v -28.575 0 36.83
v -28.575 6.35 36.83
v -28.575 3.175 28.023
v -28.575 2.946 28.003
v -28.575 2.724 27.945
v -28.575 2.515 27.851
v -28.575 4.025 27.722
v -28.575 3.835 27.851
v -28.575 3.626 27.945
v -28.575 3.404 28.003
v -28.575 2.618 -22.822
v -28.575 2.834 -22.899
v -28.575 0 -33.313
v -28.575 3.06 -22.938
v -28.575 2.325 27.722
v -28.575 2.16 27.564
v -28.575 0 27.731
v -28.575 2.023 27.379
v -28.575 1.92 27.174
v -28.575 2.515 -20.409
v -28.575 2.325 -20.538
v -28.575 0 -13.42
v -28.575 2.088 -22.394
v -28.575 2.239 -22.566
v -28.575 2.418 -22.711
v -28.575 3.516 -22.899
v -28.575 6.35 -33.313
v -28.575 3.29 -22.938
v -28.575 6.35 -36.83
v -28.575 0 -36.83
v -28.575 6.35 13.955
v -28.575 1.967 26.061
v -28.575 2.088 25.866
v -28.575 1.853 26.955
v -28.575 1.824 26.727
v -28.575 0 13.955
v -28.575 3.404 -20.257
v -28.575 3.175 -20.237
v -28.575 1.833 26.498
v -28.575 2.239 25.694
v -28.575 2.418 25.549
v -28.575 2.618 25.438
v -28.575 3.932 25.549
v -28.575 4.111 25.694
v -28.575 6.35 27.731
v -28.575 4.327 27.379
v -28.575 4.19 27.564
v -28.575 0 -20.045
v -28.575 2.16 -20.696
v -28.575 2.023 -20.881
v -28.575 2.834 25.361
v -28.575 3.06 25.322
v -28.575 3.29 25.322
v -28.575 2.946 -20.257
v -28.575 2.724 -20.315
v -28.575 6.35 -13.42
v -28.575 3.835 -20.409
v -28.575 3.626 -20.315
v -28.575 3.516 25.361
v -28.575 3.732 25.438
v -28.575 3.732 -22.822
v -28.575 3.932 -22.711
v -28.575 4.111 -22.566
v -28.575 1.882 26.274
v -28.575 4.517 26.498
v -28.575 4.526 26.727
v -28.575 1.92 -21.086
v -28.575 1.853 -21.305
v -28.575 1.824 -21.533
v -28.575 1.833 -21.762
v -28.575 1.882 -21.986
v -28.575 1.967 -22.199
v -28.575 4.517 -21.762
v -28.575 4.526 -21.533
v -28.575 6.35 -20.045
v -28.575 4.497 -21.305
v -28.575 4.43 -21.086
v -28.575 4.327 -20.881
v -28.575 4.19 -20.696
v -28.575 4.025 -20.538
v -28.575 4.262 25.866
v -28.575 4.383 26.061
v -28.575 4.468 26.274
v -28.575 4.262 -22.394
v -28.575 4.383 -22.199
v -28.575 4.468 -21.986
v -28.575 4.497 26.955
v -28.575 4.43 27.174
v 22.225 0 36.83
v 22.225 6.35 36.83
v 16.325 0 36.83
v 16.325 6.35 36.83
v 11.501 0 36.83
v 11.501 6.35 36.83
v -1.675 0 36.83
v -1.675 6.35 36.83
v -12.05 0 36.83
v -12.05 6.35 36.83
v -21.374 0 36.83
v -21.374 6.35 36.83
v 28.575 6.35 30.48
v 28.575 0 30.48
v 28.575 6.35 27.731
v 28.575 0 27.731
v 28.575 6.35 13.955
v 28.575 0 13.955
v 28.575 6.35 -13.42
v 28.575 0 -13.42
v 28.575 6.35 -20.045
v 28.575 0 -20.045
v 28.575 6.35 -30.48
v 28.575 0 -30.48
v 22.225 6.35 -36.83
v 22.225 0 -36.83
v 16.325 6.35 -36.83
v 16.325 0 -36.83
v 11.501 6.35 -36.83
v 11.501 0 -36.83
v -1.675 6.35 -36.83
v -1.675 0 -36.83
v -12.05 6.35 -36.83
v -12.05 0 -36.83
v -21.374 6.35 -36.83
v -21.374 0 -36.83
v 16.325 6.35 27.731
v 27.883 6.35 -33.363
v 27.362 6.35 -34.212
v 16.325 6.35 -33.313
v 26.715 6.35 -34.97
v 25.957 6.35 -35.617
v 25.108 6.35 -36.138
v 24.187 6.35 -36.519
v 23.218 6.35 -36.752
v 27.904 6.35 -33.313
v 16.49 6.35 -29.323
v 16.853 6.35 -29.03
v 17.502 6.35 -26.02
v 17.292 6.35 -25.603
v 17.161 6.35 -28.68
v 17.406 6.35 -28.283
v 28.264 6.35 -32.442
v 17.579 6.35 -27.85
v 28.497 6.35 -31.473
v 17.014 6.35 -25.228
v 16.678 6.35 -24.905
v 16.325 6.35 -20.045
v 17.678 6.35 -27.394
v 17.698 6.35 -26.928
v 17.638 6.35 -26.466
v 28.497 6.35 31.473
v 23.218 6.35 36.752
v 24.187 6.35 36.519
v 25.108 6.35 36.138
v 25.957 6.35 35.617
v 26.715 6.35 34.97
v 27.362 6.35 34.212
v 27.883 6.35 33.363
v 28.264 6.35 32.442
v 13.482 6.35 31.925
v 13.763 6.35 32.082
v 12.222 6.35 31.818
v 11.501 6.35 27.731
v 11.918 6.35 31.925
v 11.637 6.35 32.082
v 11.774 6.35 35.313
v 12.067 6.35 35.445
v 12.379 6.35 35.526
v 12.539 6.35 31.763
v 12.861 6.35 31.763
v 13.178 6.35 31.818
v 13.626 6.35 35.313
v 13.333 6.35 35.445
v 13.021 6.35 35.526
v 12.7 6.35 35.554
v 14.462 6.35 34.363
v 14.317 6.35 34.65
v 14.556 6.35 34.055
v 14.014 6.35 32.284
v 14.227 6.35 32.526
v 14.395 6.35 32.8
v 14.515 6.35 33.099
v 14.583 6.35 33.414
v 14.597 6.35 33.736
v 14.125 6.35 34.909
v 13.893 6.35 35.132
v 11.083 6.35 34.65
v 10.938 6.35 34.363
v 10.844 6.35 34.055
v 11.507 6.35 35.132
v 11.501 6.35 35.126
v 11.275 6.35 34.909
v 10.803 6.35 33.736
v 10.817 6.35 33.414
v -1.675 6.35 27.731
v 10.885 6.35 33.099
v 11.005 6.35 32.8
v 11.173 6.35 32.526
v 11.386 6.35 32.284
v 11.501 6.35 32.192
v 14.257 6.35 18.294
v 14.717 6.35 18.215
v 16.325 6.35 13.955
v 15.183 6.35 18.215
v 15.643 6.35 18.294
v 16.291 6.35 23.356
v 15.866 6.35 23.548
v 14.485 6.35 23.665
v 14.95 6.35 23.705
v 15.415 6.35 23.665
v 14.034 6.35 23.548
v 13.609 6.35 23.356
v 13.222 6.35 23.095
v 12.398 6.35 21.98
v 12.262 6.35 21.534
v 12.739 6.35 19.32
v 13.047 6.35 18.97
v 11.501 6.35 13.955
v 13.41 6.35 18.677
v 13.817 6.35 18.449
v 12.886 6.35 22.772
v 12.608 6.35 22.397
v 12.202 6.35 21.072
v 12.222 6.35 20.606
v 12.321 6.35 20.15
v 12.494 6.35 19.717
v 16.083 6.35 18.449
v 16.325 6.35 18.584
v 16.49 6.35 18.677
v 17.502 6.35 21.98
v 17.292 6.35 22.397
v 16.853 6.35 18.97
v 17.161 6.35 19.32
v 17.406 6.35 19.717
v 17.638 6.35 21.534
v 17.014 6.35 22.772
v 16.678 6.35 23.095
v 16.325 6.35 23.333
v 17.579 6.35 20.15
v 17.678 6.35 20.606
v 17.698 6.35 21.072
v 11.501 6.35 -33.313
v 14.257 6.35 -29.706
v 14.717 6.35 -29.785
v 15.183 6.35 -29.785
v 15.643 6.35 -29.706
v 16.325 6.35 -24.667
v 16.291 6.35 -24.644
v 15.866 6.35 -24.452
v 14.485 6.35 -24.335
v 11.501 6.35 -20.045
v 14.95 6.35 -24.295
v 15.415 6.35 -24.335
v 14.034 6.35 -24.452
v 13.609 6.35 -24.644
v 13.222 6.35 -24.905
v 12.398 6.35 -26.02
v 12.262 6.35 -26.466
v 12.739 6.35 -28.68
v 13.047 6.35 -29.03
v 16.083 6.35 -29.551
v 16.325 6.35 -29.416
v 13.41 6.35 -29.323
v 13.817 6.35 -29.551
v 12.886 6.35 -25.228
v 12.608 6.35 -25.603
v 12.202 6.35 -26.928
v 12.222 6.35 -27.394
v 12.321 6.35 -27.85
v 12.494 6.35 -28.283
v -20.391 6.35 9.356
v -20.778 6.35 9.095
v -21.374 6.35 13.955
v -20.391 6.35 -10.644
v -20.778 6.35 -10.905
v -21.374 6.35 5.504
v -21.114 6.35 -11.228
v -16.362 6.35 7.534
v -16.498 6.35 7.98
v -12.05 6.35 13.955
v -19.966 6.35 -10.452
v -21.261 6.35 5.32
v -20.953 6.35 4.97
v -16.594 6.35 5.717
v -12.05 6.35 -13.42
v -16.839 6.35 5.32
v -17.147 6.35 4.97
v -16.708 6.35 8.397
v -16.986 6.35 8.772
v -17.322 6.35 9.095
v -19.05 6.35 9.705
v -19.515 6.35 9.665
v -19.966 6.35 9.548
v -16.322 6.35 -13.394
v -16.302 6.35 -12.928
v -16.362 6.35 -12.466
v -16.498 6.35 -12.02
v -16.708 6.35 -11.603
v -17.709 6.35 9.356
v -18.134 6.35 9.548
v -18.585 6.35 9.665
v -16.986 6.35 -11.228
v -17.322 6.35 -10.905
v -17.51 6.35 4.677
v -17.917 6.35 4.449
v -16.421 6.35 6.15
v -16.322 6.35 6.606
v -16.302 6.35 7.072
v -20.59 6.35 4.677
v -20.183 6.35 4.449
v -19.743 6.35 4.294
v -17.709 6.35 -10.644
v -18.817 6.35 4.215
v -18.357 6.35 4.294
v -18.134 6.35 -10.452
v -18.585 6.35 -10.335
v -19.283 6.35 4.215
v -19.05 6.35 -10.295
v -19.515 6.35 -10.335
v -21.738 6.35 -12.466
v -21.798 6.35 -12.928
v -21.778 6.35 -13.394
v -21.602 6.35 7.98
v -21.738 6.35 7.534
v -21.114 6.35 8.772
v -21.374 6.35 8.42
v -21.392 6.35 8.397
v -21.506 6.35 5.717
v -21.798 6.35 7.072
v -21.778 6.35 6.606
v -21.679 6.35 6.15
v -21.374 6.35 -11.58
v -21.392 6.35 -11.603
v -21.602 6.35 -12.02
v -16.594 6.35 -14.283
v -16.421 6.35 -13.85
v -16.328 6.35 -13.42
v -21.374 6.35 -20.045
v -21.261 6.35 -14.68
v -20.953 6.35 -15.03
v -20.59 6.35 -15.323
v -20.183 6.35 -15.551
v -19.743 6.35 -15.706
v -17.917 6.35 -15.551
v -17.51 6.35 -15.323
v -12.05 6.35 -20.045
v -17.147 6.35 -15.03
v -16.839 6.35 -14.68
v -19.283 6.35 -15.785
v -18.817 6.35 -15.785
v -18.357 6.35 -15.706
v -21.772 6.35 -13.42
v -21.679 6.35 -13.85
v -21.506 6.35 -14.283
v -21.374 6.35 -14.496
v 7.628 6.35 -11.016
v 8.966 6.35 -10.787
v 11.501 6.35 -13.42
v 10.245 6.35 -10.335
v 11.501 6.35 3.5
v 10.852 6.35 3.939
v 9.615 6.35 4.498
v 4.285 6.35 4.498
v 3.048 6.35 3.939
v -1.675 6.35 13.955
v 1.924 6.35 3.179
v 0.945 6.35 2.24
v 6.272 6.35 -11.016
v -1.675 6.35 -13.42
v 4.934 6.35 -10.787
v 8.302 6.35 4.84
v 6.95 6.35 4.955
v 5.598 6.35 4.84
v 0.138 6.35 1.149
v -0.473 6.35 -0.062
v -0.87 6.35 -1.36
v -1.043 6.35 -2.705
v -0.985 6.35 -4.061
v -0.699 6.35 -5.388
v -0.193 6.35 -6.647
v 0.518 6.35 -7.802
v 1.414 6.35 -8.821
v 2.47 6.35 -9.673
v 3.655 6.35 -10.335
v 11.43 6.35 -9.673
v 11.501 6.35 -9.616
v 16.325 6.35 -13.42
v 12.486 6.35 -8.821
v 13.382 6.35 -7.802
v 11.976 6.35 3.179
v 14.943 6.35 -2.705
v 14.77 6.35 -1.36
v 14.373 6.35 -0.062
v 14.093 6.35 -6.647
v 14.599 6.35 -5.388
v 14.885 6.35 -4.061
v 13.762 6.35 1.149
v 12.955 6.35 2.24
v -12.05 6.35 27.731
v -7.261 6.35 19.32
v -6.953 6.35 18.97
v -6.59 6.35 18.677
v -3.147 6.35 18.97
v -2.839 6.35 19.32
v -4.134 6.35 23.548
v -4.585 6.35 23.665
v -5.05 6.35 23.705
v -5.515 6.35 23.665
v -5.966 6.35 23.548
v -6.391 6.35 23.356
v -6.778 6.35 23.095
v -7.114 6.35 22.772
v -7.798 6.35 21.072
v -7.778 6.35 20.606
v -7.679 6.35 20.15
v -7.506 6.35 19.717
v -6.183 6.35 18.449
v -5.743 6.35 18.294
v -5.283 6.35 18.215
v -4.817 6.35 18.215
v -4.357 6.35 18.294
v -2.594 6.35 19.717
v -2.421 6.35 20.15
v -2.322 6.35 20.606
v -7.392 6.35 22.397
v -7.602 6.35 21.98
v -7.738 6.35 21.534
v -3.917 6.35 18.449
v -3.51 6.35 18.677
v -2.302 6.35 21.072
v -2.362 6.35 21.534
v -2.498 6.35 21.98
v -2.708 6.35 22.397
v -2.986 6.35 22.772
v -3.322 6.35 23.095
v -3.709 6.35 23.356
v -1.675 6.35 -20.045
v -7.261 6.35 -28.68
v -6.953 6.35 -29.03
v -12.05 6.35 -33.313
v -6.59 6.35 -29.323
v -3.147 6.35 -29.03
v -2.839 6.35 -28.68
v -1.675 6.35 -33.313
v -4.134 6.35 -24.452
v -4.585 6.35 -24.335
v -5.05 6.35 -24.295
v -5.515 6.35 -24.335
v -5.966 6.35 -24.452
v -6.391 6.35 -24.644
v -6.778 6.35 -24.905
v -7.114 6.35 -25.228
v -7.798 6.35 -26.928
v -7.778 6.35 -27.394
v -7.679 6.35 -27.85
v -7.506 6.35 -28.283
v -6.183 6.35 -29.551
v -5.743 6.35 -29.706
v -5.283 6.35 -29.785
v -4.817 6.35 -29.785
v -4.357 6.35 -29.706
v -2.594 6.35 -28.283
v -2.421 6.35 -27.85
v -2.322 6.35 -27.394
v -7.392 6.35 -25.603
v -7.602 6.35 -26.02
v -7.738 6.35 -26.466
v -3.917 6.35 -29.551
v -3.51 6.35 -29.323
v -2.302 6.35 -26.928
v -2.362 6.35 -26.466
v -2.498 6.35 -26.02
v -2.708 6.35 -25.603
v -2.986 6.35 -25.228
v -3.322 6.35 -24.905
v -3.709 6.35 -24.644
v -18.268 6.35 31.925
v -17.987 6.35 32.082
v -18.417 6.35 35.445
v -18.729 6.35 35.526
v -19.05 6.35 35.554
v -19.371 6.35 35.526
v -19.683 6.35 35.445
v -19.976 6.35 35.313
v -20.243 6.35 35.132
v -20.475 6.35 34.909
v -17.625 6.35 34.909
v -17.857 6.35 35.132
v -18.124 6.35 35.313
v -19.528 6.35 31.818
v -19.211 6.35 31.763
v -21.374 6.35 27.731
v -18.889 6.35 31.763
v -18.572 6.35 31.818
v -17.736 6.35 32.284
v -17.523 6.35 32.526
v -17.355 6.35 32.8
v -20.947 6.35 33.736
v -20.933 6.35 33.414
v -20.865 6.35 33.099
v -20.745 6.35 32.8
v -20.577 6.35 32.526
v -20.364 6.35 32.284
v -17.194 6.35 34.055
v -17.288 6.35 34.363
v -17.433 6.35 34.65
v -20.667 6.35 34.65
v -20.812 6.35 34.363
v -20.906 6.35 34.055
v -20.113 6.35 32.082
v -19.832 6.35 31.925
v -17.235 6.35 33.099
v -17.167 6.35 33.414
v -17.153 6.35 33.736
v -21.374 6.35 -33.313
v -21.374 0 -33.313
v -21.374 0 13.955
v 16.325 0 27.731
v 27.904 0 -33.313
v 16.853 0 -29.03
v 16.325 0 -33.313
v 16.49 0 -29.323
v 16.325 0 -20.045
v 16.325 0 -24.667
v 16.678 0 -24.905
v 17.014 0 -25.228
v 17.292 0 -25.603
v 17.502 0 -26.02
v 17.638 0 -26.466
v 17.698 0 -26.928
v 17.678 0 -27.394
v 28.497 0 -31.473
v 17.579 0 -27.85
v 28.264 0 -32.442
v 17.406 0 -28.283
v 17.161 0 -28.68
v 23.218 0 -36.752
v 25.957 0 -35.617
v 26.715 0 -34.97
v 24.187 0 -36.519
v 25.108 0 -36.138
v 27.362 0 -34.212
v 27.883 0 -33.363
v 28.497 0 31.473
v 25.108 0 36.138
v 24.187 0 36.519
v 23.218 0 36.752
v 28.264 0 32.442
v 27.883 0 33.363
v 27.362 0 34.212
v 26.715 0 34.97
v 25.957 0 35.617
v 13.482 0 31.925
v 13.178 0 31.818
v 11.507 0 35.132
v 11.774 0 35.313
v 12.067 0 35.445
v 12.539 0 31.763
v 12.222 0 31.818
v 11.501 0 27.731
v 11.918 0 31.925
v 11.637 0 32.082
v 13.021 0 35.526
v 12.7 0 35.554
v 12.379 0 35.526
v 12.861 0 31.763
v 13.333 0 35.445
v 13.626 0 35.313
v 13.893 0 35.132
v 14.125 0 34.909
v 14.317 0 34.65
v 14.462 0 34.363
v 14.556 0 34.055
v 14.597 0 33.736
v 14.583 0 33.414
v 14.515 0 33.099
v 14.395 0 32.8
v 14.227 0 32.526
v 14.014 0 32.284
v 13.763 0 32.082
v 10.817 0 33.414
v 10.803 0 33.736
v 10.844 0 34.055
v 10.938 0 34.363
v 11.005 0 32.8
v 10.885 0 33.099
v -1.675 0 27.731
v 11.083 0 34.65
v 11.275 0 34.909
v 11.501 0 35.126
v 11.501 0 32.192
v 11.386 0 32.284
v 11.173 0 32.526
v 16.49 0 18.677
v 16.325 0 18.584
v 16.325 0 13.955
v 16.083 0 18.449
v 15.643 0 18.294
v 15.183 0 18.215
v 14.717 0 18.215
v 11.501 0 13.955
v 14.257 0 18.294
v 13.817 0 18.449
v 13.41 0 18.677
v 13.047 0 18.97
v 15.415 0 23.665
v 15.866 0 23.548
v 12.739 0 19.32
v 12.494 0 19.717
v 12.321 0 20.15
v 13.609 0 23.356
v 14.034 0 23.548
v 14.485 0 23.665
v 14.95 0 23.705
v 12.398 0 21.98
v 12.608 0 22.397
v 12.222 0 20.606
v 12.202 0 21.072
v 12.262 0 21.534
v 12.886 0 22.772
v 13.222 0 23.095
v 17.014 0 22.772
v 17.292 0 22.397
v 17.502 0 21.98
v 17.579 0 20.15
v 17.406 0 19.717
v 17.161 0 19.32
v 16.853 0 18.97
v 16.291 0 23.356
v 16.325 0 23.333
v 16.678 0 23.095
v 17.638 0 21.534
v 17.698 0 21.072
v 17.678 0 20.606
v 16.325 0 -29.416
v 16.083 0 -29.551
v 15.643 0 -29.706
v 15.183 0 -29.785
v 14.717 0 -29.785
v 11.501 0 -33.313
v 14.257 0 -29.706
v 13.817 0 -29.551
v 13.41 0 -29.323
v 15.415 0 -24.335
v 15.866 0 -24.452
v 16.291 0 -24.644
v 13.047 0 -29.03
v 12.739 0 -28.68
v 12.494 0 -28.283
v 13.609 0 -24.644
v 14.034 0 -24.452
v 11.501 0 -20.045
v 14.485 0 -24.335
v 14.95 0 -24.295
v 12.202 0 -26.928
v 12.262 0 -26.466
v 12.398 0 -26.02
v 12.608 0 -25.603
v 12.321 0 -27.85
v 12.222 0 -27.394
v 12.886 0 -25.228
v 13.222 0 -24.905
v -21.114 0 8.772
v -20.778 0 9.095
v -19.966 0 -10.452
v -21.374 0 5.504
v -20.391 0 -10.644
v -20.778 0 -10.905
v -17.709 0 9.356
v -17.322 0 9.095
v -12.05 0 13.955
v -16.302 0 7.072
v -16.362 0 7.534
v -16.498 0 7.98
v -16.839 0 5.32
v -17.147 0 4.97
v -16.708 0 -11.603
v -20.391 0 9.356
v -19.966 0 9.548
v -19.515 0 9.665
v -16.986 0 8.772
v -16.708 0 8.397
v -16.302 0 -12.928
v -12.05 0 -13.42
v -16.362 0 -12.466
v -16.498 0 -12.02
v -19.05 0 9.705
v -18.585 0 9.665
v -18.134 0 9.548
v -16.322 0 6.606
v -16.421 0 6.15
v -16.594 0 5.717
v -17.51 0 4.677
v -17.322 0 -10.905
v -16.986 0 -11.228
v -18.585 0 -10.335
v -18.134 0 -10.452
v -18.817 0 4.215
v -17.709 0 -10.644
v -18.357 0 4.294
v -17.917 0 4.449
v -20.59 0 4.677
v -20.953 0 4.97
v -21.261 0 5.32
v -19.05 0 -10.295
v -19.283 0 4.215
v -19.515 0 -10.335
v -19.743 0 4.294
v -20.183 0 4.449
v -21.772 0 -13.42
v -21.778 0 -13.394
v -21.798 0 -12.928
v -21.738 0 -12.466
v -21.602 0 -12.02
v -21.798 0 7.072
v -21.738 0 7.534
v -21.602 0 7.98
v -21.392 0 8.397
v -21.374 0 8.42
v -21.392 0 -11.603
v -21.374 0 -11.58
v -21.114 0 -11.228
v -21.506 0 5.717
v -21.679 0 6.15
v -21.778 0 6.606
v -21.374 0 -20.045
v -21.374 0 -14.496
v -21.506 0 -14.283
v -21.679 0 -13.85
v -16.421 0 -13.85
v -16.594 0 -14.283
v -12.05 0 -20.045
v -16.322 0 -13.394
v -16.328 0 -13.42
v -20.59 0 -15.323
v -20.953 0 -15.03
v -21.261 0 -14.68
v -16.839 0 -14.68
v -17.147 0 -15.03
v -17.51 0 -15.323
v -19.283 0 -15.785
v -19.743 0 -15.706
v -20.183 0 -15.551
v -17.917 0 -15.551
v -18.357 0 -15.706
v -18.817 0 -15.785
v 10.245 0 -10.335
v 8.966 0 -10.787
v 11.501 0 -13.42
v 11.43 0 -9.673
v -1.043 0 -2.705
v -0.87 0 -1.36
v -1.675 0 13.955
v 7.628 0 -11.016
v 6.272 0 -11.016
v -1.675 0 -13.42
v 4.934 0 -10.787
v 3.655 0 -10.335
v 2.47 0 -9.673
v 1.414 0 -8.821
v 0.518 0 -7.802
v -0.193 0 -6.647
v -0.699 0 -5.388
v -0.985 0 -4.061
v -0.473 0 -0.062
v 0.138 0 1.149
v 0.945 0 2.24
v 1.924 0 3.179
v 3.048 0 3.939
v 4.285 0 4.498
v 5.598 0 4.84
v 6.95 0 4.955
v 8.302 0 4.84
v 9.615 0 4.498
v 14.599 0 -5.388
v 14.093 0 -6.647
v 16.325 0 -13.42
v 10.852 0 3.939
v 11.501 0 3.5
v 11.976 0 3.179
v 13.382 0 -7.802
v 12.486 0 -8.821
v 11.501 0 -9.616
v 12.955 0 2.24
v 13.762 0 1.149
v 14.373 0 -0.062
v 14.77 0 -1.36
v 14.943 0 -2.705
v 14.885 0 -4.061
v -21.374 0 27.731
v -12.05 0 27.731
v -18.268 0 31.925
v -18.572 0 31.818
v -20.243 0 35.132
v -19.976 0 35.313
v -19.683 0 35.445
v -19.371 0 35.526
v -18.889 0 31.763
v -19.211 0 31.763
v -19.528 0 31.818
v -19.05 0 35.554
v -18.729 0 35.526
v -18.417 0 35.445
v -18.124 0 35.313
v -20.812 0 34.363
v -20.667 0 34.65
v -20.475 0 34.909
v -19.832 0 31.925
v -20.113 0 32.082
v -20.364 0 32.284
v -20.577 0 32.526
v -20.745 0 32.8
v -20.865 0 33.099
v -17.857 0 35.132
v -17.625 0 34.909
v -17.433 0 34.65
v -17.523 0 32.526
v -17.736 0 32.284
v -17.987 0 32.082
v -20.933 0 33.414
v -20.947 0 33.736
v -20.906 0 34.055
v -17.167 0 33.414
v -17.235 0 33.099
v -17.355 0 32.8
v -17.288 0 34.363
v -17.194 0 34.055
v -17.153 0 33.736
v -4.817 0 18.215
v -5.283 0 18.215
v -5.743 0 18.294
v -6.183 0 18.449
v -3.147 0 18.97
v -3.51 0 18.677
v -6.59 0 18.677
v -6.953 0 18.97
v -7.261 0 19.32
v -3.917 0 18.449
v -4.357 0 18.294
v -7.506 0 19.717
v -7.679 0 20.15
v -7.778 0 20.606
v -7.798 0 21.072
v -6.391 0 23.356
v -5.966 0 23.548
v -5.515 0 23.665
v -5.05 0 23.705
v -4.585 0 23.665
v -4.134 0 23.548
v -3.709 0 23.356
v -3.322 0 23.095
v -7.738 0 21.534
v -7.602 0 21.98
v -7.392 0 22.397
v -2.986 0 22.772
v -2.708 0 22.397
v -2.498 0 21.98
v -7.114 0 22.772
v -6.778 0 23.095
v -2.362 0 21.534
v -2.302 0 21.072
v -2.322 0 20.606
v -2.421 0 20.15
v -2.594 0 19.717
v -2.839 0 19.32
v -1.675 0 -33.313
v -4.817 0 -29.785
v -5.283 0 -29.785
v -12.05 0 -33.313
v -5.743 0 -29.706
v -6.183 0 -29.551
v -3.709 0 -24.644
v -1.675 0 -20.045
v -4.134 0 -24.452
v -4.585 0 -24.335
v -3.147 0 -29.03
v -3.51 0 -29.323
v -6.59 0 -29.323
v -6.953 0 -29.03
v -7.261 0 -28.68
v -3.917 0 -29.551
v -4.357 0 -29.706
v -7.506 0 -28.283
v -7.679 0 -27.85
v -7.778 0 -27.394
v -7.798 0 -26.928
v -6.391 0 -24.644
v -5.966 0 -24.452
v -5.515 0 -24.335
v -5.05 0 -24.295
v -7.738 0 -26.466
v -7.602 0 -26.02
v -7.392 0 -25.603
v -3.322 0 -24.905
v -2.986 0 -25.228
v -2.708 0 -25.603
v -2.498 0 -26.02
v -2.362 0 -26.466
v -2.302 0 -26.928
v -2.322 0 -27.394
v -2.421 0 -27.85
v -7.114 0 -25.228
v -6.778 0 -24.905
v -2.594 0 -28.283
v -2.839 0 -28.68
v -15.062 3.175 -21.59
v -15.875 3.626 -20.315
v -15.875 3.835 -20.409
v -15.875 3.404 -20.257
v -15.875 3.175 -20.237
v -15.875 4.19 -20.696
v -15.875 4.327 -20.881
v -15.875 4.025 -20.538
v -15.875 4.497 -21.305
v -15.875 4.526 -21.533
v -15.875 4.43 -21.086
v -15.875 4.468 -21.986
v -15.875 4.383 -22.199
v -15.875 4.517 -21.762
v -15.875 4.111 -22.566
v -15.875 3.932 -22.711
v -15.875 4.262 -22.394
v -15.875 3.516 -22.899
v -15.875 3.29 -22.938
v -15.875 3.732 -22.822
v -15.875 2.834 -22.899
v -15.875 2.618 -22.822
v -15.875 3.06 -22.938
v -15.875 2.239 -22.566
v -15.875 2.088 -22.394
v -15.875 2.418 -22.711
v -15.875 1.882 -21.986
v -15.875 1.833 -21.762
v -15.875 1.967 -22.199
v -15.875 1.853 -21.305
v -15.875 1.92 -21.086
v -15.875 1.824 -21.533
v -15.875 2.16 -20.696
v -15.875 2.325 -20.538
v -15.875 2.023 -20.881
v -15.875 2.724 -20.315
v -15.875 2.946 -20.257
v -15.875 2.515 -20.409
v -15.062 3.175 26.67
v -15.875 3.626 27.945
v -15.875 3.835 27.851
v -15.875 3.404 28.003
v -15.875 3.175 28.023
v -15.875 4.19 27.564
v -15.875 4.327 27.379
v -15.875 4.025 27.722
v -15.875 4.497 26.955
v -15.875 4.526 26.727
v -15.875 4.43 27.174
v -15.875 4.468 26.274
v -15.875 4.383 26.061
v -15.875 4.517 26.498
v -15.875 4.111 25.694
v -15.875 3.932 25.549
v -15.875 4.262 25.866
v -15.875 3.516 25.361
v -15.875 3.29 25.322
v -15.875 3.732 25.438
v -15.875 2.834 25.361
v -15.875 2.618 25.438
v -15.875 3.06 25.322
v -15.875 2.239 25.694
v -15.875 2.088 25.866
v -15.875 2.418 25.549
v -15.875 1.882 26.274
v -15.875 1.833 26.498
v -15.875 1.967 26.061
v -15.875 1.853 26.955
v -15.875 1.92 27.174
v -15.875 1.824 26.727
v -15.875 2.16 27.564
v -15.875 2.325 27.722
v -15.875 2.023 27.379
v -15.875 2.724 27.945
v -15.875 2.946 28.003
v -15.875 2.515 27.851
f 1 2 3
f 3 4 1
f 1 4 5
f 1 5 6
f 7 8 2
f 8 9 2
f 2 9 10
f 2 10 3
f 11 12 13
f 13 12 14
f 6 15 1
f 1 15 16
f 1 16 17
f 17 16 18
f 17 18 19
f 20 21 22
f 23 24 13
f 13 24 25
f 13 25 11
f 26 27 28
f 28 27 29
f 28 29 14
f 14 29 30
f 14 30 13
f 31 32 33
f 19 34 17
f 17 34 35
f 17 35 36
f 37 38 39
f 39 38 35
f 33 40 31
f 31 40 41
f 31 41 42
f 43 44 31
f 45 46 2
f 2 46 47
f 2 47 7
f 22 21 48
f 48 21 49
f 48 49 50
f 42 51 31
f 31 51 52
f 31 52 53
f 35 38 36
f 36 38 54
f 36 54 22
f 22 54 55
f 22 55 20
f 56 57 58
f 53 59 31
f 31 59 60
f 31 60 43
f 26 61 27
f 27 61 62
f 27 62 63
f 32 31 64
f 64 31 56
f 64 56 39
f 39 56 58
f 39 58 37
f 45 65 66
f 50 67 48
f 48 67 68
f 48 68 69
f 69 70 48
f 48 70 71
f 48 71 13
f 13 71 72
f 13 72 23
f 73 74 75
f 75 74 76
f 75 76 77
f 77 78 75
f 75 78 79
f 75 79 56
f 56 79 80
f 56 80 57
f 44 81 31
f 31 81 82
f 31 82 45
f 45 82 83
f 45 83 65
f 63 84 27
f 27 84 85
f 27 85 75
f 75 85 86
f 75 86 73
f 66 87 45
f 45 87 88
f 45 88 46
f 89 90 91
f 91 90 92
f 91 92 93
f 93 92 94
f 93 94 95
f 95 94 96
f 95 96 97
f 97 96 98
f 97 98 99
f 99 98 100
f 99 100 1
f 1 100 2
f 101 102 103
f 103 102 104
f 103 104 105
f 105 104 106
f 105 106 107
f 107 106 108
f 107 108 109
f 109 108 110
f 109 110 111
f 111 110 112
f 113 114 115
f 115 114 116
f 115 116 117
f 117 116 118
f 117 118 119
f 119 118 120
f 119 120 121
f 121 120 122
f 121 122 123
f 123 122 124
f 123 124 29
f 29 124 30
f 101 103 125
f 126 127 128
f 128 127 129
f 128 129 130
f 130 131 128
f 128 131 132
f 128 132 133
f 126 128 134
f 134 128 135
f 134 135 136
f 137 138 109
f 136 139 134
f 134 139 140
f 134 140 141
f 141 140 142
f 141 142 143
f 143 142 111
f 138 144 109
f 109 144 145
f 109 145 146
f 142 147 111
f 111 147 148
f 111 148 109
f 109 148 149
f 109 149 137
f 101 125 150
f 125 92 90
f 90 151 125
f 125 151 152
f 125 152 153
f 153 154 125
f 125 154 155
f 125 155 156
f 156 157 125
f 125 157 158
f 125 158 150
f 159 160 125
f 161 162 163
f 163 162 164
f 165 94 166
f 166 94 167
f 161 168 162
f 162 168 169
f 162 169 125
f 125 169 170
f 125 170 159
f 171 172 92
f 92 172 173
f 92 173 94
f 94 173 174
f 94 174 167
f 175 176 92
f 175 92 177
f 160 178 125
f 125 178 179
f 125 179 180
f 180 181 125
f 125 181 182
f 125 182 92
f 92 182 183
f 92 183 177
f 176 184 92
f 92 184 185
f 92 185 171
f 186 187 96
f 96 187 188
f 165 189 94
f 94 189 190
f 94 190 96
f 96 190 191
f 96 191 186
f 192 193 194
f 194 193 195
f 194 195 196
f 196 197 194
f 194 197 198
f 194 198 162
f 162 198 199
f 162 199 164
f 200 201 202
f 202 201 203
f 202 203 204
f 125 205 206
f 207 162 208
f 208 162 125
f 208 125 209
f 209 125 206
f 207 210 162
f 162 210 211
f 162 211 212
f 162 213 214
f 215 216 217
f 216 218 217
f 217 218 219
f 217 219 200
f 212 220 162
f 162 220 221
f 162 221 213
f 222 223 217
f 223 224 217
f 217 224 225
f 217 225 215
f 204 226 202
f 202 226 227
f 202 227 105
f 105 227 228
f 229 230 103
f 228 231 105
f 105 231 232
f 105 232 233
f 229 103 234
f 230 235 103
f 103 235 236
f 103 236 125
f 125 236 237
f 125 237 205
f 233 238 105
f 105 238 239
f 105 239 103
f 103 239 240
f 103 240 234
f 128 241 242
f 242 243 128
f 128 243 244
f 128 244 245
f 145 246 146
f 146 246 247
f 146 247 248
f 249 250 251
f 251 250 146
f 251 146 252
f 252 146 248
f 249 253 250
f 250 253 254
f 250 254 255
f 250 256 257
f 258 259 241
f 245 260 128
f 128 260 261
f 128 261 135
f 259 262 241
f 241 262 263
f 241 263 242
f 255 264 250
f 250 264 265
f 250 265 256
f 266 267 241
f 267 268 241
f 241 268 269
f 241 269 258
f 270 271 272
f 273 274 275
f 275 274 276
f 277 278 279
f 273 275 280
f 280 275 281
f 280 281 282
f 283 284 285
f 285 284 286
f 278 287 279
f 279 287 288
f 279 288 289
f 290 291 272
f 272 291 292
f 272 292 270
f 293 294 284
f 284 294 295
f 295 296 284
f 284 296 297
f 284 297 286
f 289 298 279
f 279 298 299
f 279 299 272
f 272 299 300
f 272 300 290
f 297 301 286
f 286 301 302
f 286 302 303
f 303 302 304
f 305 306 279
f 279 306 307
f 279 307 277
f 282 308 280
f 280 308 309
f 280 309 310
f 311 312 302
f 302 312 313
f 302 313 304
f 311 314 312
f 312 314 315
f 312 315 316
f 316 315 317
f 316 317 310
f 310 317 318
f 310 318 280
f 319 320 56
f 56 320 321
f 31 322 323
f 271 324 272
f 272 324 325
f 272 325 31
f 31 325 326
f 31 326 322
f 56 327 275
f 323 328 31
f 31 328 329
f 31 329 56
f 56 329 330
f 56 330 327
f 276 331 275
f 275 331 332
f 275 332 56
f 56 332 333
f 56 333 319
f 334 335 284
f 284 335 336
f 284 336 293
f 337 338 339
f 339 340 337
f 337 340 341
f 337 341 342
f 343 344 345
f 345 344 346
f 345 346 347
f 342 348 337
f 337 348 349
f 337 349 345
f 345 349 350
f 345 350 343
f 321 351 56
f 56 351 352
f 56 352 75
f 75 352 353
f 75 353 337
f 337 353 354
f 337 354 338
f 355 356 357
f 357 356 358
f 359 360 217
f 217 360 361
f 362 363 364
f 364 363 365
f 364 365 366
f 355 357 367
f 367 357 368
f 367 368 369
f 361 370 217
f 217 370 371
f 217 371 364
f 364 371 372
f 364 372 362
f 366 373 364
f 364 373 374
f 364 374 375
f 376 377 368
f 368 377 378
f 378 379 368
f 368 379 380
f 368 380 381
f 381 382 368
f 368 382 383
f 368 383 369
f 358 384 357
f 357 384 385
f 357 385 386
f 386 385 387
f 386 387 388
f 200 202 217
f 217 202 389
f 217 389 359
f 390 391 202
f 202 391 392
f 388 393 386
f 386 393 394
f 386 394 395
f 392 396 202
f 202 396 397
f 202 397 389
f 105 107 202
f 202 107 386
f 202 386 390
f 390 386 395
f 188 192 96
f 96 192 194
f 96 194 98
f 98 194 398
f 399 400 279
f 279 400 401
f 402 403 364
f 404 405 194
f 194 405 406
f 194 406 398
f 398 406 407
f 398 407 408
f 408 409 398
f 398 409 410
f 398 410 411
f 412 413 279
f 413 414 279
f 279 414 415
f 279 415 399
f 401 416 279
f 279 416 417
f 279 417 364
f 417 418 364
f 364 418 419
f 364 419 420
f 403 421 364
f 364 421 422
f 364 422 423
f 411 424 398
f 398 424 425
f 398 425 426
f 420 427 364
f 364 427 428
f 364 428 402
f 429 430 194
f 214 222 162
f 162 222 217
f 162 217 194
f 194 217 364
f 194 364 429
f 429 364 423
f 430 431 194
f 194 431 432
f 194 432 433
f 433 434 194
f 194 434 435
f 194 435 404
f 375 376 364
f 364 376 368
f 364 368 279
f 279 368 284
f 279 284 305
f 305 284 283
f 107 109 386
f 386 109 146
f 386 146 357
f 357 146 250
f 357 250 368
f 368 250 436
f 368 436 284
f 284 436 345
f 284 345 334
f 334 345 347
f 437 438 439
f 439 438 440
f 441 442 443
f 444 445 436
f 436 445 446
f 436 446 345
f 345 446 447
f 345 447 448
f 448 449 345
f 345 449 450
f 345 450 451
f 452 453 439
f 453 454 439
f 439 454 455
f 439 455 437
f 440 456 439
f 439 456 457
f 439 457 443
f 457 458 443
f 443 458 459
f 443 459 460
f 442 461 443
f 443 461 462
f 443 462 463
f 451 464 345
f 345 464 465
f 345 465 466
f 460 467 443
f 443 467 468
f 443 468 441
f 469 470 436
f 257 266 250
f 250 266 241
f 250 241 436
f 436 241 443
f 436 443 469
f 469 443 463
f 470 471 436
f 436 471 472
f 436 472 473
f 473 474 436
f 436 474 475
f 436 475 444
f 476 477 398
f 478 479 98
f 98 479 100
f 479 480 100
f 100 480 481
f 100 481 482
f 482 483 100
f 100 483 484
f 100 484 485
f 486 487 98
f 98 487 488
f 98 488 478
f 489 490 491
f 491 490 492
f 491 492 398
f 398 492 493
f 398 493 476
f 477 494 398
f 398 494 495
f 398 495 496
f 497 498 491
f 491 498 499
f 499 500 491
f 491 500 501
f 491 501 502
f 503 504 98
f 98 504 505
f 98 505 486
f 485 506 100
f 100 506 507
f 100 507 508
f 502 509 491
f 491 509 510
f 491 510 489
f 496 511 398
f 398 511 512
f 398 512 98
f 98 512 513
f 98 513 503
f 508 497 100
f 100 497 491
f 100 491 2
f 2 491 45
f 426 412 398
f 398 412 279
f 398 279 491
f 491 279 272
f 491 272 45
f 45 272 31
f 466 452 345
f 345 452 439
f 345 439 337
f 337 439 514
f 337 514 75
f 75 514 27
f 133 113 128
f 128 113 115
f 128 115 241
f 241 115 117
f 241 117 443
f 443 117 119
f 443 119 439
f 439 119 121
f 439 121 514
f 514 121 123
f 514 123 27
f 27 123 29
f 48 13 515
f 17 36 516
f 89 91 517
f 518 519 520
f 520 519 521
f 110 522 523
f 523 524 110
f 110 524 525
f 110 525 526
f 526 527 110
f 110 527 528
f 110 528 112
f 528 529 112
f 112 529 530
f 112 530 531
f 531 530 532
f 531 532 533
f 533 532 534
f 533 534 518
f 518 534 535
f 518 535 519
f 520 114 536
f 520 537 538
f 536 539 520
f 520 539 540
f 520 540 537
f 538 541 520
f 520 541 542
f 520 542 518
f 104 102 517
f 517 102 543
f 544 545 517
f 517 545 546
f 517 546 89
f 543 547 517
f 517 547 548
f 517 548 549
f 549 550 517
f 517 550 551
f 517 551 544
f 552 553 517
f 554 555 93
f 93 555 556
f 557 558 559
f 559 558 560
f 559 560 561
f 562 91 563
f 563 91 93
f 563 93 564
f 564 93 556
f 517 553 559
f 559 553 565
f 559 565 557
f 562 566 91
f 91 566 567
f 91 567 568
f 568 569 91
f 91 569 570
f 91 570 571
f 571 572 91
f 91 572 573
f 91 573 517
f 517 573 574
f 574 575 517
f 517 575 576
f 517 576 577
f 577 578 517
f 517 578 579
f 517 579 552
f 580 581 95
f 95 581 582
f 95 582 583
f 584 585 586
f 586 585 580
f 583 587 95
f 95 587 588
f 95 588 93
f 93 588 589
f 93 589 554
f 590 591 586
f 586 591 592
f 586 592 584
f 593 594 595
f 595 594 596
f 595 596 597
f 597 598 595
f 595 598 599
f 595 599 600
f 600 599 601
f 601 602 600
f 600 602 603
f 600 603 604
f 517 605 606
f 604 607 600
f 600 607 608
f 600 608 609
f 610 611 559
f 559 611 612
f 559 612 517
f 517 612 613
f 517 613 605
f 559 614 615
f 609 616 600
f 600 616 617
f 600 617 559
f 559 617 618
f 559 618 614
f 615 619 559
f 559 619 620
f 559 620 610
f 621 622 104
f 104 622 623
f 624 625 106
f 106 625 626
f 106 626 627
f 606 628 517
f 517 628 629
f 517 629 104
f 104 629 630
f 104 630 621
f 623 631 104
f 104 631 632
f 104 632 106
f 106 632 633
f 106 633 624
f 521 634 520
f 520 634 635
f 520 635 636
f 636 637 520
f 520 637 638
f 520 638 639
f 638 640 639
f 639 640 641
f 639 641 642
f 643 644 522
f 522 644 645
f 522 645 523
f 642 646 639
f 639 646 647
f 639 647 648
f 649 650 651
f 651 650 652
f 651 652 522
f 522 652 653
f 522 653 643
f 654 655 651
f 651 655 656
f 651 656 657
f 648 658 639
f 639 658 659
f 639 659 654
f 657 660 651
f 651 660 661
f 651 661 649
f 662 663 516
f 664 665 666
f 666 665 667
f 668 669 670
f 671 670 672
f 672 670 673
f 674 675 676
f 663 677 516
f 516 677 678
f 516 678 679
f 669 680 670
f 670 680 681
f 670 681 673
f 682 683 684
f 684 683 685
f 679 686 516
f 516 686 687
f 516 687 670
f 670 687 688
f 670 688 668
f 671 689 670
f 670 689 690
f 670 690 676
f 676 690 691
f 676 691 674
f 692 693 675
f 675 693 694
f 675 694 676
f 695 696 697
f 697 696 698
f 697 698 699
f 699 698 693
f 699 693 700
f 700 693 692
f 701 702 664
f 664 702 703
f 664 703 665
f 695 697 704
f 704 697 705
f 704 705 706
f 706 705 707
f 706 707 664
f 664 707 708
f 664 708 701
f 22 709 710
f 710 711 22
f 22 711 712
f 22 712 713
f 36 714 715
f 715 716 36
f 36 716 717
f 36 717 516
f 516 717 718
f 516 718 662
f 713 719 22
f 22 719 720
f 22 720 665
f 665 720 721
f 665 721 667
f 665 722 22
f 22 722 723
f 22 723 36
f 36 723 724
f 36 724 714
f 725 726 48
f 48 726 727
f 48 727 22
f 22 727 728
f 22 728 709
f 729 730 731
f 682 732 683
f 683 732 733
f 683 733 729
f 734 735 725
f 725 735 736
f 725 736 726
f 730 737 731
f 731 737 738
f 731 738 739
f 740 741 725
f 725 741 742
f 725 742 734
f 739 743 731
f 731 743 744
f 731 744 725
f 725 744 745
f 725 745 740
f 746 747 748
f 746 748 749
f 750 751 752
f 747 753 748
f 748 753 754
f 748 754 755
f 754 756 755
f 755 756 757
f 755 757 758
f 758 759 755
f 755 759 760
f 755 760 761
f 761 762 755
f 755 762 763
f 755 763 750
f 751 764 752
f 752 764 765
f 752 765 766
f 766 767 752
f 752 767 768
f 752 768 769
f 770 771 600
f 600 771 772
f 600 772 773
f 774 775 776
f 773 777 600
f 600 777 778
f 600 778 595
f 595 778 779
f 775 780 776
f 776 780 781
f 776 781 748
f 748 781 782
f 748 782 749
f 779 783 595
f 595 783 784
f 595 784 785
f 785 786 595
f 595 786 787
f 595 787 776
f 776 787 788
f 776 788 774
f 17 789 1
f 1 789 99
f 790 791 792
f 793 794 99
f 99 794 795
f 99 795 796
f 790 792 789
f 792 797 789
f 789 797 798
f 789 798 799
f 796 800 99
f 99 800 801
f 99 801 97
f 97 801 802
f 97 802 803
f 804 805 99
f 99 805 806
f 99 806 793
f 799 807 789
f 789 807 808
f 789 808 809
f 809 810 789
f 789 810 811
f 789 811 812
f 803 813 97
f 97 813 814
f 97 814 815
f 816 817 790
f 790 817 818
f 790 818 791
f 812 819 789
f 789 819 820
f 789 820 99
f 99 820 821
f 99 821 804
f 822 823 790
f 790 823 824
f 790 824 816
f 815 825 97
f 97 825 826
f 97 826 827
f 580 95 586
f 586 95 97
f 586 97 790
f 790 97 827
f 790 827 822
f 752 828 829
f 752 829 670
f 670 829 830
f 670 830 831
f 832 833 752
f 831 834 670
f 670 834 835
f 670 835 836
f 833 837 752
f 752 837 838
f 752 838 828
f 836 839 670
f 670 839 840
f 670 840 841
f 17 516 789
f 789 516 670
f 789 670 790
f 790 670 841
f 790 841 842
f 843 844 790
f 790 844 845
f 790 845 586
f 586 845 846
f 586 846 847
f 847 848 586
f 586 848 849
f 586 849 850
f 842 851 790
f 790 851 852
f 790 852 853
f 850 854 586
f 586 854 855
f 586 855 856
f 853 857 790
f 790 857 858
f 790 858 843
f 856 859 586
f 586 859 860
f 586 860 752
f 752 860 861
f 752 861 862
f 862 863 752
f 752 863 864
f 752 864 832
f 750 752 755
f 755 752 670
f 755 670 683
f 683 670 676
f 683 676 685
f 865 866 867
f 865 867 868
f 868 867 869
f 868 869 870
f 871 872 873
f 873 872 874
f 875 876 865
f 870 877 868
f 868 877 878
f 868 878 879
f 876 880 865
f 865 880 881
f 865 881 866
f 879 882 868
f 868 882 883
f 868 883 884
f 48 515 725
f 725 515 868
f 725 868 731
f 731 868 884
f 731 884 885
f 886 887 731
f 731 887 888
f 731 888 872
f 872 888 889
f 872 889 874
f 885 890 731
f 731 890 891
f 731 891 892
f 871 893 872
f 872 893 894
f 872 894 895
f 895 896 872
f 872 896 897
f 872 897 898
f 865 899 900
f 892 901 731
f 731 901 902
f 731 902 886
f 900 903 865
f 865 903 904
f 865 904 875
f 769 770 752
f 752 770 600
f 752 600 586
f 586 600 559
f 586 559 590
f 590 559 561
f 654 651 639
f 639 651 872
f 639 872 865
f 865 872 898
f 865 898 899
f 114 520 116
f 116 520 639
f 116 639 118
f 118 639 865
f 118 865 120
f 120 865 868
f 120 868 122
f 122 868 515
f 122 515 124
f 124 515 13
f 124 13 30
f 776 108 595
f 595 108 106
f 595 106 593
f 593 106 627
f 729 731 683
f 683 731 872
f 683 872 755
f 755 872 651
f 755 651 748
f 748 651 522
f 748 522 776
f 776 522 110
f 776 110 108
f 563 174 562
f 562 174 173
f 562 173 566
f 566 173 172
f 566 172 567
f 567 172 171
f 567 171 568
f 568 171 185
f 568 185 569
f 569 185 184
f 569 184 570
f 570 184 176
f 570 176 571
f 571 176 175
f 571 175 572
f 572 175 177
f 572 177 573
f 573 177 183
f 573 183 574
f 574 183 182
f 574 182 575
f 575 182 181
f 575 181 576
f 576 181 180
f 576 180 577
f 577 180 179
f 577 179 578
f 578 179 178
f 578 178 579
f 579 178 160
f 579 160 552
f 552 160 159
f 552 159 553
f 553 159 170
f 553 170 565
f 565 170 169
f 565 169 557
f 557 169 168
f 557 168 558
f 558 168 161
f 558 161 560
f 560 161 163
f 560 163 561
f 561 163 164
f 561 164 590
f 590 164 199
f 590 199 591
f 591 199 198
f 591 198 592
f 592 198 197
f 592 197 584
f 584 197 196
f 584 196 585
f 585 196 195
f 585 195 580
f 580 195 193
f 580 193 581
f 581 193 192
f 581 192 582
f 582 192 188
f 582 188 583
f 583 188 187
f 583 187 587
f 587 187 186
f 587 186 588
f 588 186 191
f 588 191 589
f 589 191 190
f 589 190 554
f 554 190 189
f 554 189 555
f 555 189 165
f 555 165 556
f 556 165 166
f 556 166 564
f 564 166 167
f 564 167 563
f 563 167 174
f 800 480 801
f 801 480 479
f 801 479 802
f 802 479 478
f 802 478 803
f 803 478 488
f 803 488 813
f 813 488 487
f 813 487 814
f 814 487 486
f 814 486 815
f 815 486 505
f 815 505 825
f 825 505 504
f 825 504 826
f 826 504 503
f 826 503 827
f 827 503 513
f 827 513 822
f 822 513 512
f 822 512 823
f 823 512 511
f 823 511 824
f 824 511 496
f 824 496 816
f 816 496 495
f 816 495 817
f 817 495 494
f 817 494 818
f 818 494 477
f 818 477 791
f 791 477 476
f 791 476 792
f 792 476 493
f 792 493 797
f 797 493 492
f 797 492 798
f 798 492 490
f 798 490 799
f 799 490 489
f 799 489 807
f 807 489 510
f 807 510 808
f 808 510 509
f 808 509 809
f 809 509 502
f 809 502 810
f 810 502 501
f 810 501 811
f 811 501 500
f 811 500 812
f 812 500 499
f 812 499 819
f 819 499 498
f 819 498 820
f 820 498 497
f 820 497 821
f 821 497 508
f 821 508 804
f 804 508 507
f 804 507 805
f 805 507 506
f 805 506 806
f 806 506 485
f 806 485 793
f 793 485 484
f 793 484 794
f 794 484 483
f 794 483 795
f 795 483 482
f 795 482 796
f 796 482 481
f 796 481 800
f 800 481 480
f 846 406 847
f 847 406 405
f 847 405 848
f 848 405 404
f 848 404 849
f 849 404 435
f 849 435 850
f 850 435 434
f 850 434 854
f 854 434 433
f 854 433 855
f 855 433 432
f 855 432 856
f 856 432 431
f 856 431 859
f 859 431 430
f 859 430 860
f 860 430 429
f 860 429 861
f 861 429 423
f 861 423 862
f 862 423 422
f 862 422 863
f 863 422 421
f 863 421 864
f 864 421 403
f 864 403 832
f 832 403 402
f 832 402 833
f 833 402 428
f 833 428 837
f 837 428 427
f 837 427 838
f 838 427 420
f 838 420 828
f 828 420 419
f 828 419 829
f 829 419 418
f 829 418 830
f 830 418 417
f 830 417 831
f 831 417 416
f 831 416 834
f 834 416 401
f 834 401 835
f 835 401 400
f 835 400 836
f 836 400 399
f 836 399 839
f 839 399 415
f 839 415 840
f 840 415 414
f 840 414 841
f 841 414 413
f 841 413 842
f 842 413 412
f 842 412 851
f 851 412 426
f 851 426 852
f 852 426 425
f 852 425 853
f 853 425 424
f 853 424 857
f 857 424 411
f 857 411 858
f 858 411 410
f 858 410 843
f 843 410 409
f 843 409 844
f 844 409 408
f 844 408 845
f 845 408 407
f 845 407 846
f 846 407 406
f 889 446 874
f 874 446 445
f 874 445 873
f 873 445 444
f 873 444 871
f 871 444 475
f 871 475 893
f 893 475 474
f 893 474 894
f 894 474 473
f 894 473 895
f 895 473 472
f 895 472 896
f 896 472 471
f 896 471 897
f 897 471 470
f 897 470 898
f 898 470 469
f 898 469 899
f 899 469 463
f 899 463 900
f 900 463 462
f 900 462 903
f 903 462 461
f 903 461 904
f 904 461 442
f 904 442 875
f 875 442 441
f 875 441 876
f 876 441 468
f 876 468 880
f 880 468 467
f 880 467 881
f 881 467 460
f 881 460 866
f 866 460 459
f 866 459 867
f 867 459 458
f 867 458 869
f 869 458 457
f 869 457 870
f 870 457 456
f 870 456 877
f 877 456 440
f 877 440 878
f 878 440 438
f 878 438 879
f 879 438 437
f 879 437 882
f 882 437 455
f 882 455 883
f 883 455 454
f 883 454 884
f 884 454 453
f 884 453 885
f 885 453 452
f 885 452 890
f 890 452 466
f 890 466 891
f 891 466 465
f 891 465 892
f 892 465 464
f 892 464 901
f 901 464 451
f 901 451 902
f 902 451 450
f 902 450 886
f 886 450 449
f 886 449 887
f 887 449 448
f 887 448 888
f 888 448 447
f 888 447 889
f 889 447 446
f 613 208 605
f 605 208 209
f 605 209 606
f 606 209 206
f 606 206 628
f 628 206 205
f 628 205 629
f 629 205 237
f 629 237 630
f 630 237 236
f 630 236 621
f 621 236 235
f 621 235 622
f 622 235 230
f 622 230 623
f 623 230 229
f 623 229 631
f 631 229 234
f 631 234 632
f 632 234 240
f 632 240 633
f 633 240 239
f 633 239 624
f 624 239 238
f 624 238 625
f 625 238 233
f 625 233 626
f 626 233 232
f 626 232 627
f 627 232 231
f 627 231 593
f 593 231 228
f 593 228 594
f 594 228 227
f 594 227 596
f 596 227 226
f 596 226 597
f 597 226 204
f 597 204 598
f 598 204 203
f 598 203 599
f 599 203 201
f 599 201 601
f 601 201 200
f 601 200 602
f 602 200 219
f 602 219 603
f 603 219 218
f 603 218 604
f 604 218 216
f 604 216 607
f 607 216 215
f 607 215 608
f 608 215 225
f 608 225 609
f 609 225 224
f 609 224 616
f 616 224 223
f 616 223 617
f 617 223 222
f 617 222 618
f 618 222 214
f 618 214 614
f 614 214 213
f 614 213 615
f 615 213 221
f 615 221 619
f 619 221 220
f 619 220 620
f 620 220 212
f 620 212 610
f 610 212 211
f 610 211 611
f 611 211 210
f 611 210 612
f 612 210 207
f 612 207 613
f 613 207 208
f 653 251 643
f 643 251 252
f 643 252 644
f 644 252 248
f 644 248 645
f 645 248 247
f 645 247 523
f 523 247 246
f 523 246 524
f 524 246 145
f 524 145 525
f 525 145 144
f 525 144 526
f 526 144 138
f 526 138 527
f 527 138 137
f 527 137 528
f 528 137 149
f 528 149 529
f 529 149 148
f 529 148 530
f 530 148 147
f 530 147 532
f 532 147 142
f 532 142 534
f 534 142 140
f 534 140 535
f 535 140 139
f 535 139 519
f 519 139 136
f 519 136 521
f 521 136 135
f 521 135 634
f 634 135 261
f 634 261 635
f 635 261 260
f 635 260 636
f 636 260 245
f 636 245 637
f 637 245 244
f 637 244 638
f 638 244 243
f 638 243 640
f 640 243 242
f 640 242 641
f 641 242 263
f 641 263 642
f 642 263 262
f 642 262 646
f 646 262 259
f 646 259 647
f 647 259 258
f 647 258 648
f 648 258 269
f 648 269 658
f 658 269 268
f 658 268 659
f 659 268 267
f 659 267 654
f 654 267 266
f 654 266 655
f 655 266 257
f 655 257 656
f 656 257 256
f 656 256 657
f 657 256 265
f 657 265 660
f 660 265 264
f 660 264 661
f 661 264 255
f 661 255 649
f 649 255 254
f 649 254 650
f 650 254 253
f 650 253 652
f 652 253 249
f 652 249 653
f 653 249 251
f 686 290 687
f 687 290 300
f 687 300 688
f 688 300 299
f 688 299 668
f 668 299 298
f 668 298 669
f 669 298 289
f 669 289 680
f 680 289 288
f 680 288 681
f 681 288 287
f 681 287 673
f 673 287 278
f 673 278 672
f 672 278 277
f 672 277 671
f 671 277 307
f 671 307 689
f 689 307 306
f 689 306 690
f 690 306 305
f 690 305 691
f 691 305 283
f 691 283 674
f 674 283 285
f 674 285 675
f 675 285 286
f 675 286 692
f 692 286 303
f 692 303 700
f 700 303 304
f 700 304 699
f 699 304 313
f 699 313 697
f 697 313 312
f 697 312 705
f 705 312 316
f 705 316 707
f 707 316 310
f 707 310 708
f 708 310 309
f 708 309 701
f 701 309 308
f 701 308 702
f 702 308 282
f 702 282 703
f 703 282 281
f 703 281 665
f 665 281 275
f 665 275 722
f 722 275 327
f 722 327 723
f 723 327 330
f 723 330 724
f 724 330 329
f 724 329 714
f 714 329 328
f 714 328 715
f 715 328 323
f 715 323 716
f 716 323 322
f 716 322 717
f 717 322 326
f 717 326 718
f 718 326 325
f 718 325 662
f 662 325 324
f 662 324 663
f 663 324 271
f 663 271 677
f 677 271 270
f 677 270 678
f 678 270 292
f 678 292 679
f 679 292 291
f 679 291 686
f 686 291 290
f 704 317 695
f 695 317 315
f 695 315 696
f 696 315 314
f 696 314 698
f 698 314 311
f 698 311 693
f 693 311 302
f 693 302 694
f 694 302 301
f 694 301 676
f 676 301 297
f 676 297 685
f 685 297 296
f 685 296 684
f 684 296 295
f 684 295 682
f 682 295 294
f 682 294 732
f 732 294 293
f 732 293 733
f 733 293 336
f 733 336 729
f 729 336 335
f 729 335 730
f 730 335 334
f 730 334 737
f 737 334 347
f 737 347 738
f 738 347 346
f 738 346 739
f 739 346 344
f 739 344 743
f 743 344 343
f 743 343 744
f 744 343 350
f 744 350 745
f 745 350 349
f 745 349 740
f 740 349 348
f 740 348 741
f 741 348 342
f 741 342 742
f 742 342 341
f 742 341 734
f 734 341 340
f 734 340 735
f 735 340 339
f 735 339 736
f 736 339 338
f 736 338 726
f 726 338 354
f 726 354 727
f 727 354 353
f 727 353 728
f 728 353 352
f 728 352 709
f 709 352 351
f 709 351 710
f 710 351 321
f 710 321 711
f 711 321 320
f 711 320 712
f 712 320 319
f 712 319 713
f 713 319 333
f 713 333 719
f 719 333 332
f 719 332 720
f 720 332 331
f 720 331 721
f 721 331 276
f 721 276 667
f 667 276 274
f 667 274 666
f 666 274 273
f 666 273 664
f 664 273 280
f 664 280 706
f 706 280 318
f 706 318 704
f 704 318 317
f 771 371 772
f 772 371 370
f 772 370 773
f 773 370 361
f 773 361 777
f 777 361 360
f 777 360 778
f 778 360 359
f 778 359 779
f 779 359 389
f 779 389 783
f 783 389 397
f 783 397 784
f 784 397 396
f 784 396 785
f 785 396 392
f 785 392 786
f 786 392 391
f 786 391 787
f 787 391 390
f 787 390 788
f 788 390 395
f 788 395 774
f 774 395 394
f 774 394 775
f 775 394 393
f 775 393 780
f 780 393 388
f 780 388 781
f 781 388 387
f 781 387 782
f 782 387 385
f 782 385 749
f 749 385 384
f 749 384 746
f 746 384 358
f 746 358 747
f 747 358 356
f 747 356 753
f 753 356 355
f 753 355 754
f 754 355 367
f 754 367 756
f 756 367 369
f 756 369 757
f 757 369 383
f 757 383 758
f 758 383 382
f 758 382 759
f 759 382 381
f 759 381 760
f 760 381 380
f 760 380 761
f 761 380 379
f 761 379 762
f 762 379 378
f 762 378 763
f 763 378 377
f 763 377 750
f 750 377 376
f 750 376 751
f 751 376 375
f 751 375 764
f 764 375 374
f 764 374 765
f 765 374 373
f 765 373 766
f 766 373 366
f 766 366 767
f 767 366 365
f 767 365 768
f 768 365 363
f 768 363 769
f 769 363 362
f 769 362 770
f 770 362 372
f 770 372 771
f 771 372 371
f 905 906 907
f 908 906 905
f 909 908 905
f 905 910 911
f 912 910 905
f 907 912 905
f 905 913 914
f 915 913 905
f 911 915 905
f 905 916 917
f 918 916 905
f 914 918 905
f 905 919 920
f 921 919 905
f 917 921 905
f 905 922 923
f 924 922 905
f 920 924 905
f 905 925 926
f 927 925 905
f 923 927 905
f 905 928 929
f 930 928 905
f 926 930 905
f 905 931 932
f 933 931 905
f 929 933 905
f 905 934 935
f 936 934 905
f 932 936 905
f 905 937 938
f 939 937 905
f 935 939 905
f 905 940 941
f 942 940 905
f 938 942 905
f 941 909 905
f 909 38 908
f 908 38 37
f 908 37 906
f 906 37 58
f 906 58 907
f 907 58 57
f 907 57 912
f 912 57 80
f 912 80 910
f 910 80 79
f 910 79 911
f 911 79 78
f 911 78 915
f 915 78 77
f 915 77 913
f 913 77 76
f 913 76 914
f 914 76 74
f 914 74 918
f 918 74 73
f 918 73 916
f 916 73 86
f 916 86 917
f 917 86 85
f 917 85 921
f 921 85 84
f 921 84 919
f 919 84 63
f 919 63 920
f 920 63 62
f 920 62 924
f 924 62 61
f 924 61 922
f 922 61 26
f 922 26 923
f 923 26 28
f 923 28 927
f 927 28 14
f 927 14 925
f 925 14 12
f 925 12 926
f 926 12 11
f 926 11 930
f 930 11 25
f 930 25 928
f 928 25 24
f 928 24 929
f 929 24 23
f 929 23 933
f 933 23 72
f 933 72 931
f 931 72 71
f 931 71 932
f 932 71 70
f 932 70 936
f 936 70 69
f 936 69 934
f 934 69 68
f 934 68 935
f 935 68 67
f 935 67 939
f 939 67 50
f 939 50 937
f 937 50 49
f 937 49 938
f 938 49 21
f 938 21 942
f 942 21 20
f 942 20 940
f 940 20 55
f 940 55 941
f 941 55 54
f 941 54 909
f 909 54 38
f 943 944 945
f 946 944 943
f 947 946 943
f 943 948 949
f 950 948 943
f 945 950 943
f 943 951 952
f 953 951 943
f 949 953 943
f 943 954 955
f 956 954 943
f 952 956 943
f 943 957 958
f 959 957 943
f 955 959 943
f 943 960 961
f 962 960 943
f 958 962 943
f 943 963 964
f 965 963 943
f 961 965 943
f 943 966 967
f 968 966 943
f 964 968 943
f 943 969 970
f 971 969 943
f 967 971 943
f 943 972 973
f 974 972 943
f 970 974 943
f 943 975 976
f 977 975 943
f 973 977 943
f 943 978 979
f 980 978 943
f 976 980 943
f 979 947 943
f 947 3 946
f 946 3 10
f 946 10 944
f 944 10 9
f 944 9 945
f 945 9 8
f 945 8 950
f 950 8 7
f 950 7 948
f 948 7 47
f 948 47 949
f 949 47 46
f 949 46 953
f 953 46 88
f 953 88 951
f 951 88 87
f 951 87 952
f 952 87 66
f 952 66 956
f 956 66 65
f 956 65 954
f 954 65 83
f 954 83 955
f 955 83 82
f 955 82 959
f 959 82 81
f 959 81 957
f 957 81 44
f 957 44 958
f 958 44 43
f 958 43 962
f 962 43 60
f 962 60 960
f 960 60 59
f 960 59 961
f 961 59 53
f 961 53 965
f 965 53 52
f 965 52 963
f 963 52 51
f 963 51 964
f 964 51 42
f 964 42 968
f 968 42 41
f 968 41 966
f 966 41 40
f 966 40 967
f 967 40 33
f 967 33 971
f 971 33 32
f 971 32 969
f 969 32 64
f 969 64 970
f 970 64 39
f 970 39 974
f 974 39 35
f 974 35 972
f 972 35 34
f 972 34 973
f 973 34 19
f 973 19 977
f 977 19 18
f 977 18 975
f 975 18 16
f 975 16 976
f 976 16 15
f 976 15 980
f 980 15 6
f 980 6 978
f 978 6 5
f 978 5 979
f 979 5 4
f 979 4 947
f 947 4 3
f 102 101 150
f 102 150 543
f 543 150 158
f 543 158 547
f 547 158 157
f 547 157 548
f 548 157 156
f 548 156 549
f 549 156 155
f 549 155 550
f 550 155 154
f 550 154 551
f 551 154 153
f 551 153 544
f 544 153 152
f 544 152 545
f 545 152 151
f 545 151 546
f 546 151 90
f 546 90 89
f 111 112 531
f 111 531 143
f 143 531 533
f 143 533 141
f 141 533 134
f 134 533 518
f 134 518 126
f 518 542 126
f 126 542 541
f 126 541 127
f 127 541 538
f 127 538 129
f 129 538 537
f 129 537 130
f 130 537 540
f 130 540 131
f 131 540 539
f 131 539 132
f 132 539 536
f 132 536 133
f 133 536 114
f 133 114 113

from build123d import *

# Parameters (mm, degrees)
SKETCH1_W                     = 57.15
SKETCH1_H                     = 73.66
BOSS_EXTRUDE1_DEPTH           = 6.35
F_6_CLEARANCE_HOLE1_D         = 3.7973
F_6_CLEARANCE_HOLE1_DEPTH     = 12.7
F_6_CLEARANCE_HOLE1_TIP       = 1.140824014
M5_CLEARANCE_HOLE1_D          = 5.5
M5_CLEARANCE_HOLE1_DEPTH      = 12.7
M5_CLEARANCE_HOLE1_TIP        = 1.652366702
SKETCH6_R                     = 8
CUT_EXTRUDE1_DEPTH            = 6.35
TAP_DRILL_FOR_6_32_TAP1_D     = 2.7051
TAP_DRILL_FOR_6_32_TAP1_DEPTH = 12.7
TAP_DRILL_FOR_6_32_TAP1_TIP   = 0.81269403
FILLET1_R                     = 6.35


with BuildPart() as part:
    # Sketch1 → Boss-Extrude1 (new body)
    with BuildSketch(Plane(origin=(0, 0, 0), x_dir=(1, 0, 0), z_dir=(0, 1, 0))):
        Rectangle(SKETCH1_W, SKETCH1_H)
    extrude(amount=BOSS_EXTRUDE1_DEPTH)

    # #6 Clearance Hole1
    with Locations(Plane(origin=(0, 6.35, 0), x_dir=(1, 0, 0), z_dir=(0, 1, 0))):
        with Locations((-19.05, -33.655), (12.7, -33.655)):
            Hole(F_6_CLEARANCE_HOLE1_D / 2, depth=F_6_CLEARANCE_HOLE1_DEPTH)
            with Locations((0, 0, -(F_6_CLEARANCE_HOLE1_DEPTH + F_6_CLEARANCE_HOLE1_TIP / 2))):  # 118° drill point
                Cone(0, F_6_CLEARANCE_HOLE1_D / 2, F_6_CLEARANCE_HOLE1_TIP, mode=Mode.SUBTRACT)

    # M5 Clearance Hole1
    with Locations(Plane(origin=(0, 6.35, 0), x_dir=(1, 0, 0), z_dir=(0, 1, 0))):
        with Locations((-19.05, 13.045000006), (-19.05, -6.954999994), (6.95, 3.045000006), (14.95, 27.045), (14.95, -20.955), (-5.05, 27.045), (-5.05, -20.955)):
            Hole(M5_CLEARANCE_HOLE1_D / 2, depth=M5_CLEARANCE_HOLE1_DEPTH)
            with Locations((0, 0, -(M5_CLEARANCE_HOLE1_DEPTH + M5_CLEARANCE_HOLE1_TIP / 2))):  # 118° drill point
                Cone(0, M5_CLEARANCE_HOLE1_D / 2, M5_CLEARANCE_HOLE1_TIP, mode=Mode.SUBTRACT)

    # Sketch6 → Cut-Extrude1 (cut)
    with BuildSketch(Plane(origin=(0, 6.35, 0), x_dir=(1, 0, 0), z_dir=(0, 1, 0))):
        with Locations(Location((6.95, 3.045000006, 0), (0, 0, 270))):
            Circle(SKETCH6_R)
    extrude(amount=-CUT_EXTRUDE1_DEPTH, mode=Mode.SUBTRACT)

    # Tap Drill for #6-32 Tap1
    with Locations(Plane.ZY.offset(28.575)):
        with Locations((26.67, 3.175), (-21.59, 3.175)):
            Hole(TAP_DRILL_FOR_6_32_TAP1_D / 2, depth=TAP_DRILL_FOR_6_32_TAP1_DEPTH)
            with Locations((0, 0, -(TAP_DRILL_FOR_6_32_TAP1_DEPTH + TAP_DRILL_FOR_6_32_TAP1_TIP / 2))):  # 118° drill point
                Cone(0, TAP_DRILL_FOR_6_32_TAP1_D / 2, TAP_DRILL_FOR_6_32_TAP1_TIP, mode=Mode.SUBTRACT)

    # Fillet1
    fillet1_edges = [part.edges().sort_by_distance(p)[0] for p in [
        (28.575, 3.175, -36.83),
        (28.575, 3.175, 36.83),
    ]]
    fillet(fillet1_edges, radius=FILLET1_R)


solid = part.part
